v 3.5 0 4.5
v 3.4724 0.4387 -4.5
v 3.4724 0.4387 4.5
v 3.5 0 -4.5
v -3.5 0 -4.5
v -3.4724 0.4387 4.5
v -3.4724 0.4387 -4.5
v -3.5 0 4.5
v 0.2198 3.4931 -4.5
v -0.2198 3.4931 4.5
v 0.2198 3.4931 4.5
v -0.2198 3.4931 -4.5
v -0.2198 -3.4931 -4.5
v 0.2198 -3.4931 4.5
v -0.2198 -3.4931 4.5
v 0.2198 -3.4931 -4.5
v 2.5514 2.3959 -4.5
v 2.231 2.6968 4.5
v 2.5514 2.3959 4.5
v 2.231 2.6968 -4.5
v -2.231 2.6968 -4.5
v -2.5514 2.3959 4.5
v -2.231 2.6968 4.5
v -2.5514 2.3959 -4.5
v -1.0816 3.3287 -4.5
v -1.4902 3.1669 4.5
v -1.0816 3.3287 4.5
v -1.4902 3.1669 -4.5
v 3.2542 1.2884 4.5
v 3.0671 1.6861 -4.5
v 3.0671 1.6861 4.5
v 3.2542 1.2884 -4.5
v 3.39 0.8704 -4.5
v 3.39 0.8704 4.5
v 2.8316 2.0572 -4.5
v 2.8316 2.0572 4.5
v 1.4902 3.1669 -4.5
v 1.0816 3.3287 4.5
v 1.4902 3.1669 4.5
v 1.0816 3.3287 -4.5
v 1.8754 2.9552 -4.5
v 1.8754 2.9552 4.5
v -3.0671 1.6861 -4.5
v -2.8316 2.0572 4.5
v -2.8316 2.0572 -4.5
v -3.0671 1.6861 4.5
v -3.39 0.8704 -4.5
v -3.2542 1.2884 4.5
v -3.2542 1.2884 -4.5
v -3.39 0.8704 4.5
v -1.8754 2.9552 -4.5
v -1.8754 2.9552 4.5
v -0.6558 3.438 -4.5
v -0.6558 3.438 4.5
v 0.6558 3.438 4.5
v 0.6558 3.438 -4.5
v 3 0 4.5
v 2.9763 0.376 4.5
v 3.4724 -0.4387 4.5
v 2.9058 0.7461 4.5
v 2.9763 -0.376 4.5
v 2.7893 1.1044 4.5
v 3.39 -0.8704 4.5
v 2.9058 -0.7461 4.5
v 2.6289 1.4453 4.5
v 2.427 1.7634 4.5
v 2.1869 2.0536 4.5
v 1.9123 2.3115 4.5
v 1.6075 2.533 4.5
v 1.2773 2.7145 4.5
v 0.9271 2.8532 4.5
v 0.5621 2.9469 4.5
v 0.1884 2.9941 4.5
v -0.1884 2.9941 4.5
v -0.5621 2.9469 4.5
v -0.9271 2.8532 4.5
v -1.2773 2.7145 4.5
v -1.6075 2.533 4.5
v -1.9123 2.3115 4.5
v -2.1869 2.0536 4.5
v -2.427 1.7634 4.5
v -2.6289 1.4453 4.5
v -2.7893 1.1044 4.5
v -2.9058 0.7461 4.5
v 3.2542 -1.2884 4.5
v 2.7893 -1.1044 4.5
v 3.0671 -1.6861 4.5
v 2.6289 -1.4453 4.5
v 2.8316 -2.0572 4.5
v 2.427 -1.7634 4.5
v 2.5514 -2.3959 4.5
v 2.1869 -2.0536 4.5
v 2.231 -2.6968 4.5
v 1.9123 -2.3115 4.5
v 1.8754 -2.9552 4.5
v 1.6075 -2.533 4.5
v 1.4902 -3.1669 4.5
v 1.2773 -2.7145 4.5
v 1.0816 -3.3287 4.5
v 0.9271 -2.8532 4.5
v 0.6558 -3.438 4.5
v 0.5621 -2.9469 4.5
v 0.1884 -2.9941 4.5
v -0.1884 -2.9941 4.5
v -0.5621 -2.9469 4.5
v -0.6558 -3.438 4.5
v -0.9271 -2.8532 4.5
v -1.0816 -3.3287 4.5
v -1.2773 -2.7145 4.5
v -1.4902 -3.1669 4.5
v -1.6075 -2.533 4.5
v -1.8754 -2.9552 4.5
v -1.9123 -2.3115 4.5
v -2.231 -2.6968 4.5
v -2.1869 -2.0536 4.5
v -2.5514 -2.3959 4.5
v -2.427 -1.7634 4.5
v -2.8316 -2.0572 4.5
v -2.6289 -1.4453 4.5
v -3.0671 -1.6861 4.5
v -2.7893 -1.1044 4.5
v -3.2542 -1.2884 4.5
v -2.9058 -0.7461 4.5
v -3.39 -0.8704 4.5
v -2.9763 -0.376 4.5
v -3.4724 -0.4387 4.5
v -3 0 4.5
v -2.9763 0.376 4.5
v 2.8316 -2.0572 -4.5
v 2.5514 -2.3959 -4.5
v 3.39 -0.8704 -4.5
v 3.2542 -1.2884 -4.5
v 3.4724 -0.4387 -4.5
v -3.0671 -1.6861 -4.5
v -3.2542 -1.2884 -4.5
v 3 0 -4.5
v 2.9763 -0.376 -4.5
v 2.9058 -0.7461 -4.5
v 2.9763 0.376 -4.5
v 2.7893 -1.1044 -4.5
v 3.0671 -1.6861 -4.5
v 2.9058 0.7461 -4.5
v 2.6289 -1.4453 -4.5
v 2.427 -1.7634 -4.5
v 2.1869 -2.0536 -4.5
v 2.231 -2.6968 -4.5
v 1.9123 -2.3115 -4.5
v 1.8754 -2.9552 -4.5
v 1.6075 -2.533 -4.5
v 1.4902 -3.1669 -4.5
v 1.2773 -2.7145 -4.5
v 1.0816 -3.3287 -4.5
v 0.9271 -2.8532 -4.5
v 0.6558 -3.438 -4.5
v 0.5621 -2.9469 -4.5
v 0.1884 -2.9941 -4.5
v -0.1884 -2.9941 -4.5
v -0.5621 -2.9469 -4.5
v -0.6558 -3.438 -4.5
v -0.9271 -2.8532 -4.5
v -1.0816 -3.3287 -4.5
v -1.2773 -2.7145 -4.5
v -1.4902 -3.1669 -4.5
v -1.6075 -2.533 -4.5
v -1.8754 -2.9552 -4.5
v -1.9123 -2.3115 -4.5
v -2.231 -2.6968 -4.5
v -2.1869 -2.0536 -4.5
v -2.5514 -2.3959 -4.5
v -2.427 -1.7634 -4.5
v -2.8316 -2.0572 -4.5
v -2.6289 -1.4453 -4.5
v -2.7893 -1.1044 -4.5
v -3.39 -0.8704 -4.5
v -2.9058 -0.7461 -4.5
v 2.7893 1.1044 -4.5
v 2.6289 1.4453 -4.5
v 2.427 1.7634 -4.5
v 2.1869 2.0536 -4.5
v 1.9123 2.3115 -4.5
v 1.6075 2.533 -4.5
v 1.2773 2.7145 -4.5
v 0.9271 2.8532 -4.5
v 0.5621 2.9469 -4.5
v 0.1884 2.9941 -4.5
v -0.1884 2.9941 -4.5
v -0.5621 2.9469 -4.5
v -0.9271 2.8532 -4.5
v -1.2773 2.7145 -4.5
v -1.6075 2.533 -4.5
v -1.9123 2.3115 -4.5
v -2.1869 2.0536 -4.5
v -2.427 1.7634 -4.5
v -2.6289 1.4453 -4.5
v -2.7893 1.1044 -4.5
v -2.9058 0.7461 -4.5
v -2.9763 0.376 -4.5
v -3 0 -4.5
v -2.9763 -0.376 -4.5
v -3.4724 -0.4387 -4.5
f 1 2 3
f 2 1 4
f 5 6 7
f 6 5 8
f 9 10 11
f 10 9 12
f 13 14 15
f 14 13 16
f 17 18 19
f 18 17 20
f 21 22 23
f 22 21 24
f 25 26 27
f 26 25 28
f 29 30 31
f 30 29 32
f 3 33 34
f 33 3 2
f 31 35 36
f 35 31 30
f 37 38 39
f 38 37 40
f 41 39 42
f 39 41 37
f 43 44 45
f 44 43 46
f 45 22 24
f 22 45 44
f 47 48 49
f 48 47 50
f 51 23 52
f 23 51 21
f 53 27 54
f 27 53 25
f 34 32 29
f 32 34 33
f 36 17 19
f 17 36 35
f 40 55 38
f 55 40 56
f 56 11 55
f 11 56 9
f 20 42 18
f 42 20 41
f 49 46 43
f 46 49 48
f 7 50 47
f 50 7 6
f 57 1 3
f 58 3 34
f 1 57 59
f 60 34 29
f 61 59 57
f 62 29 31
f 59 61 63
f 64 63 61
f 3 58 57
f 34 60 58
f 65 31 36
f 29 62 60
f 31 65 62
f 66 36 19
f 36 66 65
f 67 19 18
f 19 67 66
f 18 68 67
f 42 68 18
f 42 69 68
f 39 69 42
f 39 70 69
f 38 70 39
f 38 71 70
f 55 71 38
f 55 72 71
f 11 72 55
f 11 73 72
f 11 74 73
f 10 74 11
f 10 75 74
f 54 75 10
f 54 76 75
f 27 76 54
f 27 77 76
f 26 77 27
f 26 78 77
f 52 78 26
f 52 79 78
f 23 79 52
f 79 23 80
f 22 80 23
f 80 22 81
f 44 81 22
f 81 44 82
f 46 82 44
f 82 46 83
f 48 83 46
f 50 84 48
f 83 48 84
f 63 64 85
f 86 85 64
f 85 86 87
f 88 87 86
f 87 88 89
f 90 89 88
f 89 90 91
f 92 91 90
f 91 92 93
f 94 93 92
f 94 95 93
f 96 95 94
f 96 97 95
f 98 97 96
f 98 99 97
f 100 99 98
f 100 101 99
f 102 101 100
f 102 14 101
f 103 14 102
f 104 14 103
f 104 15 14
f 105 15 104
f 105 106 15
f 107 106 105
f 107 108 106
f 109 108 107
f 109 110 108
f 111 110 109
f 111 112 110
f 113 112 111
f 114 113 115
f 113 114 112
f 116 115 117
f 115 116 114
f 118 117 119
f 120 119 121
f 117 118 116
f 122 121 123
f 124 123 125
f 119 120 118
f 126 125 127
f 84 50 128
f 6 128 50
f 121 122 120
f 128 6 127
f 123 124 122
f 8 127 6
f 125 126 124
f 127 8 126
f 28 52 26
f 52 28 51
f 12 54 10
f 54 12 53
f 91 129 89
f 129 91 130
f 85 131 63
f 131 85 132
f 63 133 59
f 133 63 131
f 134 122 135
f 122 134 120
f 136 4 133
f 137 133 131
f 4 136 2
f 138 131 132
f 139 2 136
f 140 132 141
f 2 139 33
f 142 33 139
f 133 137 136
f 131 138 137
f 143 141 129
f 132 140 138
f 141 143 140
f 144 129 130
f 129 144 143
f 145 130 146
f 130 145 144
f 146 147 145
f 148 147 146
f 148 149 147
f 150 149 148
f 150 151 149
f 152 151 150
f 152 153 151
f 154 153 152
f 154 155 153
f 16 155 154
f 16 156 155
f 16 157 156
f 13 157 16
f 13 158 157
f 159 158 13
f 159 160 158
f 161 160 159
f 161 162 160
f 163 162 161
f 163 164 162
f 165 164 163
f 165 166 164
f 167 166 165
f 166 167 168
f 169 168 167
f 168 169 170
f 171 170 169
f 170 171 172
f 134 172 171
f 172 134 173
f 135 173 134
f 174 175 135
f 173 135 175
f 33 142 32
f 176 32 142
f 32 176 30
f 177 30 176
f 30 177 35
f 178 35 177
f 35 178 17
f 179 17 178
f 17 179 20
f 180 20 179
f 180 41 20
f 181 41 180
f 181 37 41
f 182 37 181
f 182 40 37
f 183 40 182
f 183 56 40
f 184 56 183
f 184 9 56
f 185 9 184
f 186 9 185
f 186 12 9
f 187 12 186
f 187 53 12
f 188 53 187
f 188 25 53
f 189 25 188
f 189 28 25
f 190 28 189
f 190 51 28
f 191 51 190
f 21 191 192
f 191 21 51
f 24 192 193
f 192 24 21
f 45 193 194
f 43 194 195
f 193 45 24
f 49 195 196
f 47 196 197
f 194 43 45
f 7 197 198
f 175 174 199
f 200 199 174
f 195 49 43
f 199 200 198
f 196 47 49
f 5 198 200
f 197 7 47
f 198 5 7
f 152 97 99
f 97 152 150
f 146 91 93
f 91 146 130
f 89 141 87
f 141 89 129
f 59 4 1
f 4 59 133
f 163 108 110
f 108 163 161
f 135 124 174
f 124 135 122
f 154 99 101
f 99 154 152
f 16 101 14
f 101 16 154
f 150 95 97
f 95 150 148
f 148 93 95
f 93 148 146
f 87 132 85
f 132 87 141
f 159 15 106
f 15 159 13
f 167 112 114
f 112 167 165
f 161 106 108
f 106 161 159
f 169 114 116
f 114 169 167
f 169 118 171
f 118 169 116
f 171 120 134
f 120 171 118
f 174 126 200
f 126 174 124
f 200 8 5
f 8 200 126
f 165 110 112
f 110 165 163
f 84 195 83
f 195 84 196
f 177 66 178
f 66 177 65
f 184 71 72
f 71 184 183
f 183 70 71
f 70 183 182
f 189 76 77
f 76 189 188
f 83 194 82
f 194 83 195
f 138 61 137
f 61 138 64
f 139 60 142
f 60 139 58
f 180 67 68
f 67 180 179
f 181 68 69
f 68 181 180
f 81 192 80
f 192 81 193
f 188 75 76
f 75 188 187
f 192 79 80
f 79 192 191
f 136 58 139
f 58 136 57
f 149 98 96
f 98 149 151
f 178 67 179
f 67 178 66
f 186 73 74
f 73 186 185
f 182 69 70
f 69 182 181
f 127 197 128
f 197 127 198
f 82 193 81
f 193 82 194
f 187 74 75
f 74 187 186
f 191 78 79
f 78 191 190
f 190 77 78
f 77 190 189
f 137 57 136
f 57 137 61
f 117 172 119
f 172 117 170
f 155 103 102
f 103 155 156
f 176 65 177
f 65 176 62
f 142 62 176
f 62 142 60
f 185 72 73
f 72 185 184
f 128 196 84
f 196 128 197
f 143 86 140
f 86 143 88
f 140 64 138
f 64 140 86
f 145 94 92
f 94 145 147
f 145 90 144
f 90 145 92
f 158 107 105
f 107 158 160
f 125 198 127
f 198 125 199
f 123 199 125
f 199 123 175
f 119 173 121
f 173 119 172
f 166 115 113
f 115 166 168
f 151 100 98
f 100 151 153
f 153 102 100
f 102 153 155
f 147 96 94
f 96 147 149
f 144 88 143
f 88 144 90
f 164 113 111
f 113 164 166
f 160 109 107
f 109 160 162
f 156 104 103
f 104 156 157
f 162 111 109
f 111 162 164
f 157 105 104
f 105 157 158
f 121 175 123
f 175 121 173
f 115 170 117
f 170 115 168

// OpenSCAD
$fn = 50;


difference() {
	union() {
		translate(v = [0, 0, -4.5000000000]) {
			cylinder(h = 9, r = 3.5000000000);
		}
	}
	union() {
		translate(v = [0, 0, -100.0000000000]) {
			cylinder(h = 200, r = 3);
		}
	}
}
